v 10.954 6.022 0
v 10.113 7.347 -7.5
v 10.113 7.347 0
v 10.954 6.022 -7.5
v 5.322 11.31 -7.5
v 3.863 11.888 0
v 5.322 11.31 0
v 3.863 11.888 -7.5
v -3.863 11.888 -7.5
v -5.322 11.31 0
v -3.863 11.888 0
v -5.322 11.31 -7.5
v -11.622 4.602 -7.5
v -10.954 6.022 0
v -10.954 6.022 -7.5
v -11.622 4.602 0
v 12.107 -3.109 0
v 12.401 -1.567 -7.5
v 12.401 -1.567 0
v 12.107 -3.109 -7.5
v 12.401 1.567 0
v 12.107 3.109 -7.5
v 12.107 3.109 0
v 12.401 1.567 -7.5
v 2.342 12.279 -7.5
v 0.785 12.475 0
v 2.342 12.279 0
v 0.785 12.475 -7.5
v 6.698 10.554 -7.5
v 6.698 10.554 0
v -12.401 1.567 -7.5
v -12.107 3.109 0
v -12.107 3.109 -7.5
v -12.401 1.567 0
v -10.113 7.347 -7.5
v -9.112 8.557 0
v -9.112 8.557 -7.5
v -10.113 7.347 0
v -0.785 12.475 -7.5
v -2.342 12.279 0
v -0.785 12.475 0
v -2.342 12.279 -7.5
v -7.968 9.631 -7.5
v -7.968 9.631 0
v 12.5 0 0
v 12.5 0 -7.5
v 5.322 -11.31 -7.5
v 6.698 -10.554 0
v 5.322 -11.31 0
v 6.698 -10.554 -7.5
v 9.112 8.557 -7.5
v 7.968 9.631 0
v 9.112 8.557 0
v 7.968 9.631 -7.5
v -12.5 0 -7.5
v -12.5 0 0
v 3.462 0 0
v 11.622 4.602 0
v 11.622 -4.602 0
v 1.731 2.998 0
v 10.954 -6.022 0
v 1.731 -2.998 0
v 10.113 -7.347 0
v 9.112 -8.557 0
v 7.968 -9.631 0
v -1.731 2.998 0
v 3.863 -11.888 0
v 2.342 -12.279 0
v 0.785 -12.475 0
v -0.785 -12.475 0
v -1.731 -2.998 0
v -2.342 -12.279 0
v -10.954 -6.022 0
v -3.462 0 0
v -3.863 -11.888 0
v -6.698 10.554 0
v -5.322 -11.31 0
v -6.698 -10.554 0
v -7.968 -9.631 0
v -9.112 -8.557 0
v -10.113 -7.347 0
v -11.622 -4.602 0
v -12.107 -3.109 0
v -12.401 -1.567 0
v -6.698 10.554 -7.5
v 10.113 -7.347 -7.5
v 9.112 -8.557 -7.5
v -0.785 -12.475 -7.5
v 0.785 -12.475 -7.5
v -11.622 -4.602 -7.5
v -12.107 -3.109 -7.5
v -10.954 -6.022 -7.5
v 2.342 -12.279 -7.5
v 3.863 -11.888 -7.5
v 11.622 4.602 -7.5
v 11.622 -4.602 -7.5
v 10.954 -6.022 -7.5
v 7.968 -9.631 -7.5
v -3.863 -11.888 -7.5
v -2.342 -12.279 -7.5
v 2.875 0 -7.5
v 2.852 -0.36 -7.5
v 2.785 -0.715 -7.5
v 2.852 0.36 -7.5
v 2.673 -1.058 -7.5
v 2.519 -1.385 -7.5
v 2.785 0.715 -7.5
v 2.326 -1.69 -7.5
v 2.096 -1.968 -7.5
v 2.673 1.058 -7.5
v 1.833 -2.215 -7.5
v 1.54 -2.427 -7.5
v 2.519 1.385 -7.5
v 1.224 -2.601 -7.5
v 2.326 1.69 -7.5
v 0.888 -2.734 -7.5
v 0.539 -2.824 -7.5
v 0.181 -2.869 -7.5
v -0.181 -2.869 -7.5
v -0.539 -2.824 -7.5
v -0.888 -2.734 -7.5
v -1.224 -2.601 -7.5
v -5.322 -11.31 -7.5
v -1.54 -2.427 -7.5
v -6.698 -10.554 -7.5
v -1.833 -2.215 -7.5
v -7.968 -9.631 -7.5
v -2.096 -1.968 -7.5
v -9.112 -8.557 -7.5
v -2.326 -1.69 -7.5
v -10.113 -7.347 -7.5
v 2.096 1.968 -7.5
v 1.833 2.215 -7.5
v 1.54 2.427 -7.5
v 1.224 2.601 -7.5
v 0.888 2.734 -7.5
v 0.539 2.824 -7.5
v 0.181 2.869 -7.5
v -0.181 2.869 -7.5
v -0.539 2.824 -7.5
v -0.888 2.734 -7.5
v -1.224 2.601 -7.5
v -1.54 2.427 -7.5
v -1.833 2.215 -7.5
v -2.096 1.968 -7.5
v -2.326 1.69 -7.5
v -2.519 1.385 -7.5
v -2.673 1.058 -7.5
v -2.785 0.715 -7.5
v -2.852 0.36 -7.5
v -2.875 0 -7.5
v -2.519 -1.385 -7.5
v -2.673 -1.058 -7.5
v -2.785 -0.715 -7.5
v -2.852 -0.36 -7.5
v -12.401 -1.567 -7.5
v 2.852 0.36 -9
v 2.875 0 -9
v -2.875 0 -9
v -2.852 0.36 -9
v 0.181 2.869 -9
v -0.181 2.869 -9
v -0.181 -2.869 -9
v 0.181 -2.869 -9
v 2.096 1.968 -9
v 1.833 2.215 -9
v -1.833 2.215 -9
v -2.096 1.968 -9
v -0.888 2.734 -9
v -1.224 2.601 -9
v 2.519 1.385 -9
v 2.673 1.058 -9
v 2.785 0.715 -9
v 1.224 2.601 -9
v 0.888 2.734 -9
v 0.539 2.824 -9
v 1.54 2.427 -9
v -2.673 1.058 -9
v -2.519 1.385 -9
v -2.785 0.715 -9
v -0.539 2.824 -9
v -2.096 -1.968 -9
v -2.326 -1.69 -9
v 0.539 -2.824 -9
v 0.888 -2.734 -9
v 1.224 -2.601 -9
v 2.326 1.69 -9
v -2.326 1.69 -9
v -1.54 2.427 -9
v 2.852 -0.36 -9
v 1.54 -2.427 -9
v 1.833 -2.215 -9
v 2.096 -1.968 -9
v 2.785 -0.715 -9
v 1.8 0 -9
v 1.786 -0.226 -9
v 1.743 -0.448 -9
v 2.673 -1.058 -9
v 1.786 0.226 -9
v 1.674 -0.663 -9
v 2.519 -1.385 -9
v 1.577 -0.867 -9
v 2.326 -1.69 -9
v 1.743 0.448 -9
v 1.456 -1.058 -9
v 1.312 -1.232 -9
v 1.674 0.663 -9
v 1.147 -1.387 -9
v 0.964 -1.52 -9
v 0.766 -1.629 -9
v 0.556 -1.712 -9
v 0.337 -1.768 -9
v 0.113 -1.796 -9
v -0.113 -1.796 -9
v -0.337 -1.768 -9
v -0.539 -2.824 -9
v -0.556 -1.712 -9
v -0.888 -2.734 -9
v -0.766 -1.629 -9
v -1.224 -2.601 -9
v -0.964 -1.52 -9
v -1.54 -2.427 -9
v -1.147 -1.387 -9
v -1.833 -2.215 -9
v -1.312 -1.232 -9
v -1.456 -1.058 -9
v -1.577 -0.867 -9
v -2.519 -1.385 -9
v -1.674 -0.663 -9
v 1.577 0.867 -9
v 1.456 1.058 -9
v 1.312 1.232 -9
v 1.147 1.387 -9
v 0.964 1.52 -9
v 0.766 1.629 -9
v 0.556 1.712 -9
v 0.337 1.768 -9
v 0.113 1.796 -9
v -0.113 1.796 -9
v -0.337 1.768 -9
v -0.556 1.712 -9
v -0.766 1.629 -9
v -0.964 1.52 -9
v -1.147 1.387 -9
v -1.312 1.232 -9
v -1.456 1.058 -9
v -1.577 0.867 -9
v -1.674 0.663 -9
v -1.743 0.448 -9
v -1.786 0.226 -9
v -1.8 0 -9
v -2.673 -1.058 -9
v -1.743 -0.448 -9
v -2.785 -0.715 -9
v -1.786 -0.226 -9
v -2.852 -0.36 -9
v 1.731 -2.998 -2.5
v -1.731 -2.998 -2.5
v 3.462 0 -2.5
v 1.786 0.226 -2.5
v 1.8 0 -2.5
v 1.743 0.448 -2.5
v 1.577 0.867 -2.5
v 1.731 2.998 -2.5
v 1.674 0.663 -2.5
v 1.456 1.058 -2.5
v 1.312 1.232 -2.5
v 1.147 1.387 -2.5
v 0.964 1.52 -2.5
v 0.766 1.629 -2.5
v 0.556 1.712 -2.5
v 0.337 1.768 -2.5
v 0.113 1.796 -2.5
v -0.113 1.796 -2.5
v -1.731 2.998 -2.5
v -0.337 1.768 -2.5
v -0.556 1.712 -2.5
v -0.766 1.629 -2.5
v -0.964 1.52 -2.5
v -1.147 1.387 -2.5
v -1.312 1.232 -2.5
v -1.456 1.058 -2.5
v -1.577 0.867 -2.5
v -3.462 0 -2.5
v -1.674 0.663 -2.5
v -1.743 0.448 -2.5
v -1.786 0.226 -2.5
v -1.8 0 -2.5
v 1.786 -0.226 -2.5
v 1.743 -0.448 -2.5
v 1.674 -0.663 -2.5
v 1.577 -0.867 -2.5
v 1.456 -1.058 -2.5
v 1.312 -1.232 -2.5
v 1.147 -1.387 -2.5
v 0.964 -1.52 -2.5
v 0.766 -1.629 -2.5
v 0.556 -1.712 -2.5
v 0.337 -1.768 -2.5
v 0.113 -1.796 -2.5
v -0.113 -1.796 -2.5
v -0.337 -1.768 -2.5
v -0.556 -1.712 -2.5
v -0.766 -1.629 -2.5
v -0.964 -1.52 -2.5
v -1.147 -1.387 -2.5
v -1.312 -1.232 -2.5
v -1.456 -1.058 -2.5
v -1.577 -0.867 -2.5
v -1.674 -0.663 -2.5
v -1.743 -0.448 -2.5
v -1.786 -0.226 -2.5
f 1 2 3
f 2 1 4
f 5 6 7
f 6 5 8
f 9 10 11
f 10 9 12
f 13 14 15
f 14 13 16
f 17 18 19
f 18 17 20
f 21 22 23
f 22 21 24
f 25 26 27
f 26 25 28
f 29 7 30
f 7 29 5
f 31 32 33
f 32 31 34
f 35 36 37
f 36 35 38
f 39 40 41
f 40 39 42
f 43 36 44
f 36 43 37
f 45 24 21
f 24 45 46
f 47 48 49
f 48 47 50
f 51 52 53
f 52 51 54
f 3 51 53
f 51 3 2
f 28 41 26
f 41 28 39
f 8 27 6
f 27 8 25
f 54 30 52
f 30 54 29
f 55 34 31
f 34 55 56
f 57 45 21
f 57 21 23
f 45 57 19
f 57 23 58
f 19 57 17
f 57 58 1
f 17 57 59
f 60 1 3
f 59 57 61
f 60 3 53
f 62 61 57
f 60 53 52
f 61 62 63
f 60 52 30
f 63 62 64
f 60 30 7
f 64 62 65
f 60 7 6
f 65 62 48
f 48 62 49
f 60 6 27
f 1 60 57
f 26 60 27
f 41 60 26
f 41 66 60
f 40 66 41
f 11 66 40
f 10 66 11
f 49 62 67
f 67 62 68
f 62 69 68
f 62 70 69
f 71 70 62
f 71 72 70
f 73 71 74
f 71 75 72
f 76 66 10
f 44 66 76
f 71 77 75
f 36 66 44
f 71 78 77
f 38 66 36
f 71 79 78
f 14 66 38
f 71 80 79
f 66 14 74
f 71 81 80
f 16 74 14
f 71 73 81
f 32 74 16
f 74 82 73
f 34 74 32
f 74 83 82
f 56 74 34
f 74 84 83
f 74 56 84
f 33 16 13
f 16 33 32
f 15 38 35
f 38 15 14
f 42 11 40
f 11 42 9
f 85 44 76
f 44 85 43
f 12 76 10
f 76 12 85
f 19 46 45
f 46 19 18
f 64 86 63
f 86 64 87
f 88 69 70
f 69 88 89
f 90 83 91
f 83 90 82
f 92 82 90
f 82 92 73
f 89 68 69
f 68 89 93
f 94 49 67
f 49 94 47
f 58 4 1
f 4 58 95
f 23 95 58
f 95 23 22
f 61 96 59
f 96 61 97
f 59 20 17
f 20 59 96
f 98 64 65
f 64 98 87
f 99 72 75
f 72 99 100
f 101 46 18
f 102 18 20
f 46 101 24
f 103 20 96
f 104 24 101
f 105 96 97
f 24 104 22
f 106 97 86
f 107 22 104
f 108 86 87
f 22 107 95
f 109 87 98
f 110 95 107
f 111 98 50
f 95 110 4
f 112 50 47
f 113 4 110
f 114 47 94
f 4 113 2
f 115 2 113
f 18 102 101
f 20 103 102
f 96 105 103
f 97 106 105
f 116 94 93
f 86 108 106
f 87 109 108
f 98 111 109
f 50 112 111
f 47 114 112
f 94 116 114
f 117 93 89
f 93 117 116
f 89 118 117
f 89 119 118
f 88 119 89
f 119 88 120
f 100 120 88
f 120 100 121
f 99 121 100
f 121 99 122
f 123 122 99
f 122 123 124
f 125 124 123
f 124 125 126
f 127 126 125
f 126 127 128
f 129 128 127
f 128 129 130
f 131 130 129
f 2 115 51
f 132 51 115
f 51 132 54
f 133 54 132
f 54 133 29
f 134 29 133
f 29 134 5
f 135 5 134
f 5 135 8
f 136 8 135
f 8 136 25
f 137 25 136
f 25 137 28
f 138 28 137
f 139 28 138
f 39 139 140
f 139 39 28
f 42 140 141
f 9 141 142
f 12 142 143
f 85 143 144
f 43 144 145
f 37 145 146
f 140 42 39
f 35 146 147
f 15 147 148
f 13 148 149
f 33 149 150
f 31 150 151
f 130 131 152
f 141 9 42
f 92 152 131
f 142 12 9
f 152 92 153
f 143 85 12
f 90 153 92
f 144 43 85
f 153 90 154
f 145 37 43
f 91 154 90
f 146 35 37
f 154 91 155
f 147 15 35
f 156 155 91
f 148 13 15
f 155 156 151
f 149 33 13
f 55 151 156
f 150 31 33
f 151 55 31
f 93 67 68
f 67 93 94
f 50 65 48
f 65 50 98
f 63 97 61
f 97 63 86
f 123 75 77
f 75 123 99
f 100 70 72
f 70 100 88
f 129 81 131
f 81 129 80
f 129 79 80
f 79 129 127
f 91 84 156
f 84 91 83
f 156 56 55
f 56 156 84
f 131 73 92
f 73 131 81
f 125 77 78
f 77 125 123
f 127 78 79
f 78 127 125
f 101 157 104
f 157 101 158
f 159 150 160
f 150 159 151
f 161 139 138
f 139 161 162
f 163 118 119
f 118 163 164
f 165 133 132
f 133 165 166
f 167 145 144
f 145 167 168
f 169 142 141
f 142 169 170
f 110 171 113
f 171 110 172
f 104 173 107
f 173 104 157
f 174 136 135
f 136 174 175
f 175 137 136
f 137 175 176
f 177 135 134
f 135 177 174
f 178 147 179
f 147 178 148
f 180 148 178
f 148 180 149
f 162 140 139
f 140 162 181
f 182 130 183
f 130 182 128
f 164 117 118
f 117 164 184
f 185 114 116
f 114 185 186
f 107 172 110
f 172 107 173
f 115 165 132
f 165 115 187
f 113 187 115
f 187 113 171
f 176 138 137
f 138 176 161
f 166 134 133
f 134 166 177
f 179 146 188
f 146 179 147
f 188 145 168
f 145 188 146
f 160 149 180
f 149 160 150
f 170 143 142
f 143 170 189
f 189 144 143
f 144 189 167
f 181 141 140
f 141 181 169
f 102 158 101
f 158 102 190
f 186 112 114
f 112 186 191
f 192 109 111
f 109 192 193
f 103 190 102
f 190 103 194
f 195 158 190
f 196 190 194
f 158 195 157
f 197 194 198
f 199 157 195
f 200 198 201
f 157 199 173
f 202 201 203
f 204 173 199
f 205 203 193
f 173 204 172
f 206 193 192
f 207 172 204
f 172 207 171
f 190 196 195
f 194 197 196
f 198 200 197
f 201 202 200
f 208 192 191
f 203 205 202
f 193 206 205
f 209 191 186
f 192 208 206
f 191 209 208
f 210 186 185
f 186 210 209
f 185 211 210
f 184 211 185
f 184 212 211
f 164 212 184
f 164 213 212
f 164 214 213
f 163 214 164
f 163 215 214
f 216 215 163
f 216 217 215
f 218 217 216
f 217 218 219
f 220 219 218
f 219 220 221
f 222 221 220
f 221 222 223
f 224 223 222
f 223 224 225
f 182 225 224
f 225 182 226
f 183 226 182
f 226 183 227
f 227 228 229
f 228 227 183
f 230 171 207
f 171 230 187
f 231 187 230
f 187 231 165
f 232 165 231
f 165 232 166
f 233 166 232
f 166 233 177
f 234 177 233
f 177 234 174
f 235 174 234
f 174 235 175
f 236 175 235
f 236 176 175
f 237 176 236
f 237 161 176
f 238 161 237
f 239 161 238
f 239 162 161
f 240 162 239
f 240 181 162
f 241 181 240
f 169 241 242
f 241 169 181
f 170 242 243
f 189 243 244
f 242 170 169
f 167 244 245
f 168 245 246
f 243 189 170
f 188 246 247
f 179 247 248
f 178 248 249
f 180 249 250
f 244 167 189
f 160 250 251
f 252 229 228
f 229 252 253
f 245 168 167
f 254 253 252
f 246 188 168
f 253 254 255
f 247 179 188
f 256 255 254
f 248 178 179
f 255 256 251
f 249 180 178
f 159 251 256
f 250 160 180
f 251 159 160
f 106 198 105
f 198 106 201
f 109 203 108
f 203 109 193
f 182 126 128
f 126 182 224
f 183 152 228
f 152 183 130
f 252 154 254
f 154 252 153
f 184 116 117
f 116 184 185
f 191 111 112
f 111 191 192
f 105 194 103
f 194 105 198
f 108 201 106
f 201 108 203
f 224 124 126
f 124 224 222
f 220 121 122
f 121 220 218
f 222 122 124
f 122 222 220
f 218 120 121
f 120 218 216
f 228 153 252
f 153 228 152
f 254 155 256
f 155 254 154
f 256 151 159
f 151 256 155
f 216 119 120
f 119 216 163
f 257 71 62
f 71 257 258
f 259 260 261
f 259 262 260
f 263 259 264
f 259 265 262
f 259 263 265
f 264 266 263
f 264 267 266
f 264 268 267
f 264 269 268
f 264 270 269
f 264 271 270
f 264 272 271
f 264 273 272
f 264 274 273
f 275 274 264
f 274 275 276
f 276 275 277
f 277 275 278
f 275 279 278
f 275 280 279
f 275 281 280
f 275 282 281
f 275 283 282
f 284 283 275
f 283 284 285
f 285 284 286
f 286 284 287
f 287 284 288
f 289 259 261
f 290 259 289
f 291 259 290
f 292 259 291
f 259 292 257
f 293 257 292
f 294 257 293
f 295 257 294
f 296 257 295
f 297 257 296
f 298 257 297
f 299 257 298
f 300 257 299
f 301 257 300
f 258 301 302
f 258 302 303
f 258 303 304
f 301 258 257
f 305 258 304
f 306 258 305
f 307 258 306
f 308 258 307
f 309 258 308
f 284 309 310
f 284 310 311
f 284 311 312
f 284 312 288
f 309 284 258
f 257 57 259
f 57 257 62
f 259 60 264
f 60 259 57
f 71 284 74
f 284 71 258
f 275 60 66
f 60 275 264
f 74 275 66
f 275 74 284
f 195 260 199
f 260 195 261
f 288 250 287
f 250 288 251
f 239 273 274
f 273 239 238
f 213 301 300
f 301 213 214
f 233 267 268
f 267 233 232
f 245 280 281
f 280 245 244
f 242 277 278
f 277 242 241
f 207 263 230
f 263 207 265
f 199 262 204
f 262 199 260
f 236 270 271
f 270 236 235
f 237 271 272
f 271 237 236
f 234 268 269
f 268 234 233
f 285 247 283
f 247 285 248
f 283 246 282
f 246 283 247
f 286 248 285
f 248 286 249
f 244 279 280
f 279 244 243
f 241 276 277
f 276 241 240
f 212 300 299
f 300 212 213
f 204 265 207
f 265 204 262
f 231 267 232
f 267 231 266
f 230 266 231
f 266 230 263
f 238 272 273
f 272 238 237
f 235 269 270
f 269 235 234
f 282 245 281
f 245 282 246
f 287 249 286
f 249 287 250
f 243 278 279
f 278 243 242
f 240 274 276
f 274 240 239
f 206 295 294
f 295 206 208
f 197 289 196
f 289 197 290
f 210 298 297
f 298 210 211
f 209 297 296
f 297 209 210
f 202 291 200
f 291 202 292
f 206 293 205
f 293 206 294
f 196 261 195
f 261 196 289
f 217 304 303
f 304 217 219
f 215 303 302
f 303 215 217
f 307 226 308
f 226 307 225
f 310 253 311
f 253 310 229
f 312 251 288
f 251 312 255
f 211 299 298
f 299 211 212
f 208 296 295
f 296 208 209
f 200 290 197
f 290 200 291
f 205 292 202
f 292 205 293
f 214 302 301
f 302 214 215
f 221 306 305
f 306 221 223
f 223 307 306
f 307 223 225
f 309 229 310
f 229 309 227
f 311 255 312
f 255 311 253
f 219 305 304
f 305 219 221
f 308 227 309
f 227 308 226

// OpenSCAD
$fn = 50;

difference() {
	union() {
		translate(v = [0, 0, -7.5]) {
			cylinder(h = 7.5, r = 12.5);
		}
		#translate(v = [0, 0, -9.0]) {
			cylinder(h = 9, r = 2.875);
		}
	}
	union() {
		translate(v = [0, 0, 0]) {
			rotate(a = [0, 0, 0]) {
				difference() {
					union() {
						translate(v = [0, 0, -2.5]) {
							linear_extrude(height = 2.5) {
								polygon(points = [[3.4619999999999997, 0.0], [1.7310000000000003, 2.9981799479017264], [-1.7309999999999992, 2.9981799479017264], [-3.4619999999999997, 4.2397272186481365e-16], [-1.7310000000000014, -2.998179947901726], [1.7309999999999977, -2.9981799479017277]]);
							}
						}
					}
					union();
				}
			}
		}
		#translate(v = [0, 0, -100.0]) {
			cylinder(h = 200, r = 1.8);
		}
	}
}
